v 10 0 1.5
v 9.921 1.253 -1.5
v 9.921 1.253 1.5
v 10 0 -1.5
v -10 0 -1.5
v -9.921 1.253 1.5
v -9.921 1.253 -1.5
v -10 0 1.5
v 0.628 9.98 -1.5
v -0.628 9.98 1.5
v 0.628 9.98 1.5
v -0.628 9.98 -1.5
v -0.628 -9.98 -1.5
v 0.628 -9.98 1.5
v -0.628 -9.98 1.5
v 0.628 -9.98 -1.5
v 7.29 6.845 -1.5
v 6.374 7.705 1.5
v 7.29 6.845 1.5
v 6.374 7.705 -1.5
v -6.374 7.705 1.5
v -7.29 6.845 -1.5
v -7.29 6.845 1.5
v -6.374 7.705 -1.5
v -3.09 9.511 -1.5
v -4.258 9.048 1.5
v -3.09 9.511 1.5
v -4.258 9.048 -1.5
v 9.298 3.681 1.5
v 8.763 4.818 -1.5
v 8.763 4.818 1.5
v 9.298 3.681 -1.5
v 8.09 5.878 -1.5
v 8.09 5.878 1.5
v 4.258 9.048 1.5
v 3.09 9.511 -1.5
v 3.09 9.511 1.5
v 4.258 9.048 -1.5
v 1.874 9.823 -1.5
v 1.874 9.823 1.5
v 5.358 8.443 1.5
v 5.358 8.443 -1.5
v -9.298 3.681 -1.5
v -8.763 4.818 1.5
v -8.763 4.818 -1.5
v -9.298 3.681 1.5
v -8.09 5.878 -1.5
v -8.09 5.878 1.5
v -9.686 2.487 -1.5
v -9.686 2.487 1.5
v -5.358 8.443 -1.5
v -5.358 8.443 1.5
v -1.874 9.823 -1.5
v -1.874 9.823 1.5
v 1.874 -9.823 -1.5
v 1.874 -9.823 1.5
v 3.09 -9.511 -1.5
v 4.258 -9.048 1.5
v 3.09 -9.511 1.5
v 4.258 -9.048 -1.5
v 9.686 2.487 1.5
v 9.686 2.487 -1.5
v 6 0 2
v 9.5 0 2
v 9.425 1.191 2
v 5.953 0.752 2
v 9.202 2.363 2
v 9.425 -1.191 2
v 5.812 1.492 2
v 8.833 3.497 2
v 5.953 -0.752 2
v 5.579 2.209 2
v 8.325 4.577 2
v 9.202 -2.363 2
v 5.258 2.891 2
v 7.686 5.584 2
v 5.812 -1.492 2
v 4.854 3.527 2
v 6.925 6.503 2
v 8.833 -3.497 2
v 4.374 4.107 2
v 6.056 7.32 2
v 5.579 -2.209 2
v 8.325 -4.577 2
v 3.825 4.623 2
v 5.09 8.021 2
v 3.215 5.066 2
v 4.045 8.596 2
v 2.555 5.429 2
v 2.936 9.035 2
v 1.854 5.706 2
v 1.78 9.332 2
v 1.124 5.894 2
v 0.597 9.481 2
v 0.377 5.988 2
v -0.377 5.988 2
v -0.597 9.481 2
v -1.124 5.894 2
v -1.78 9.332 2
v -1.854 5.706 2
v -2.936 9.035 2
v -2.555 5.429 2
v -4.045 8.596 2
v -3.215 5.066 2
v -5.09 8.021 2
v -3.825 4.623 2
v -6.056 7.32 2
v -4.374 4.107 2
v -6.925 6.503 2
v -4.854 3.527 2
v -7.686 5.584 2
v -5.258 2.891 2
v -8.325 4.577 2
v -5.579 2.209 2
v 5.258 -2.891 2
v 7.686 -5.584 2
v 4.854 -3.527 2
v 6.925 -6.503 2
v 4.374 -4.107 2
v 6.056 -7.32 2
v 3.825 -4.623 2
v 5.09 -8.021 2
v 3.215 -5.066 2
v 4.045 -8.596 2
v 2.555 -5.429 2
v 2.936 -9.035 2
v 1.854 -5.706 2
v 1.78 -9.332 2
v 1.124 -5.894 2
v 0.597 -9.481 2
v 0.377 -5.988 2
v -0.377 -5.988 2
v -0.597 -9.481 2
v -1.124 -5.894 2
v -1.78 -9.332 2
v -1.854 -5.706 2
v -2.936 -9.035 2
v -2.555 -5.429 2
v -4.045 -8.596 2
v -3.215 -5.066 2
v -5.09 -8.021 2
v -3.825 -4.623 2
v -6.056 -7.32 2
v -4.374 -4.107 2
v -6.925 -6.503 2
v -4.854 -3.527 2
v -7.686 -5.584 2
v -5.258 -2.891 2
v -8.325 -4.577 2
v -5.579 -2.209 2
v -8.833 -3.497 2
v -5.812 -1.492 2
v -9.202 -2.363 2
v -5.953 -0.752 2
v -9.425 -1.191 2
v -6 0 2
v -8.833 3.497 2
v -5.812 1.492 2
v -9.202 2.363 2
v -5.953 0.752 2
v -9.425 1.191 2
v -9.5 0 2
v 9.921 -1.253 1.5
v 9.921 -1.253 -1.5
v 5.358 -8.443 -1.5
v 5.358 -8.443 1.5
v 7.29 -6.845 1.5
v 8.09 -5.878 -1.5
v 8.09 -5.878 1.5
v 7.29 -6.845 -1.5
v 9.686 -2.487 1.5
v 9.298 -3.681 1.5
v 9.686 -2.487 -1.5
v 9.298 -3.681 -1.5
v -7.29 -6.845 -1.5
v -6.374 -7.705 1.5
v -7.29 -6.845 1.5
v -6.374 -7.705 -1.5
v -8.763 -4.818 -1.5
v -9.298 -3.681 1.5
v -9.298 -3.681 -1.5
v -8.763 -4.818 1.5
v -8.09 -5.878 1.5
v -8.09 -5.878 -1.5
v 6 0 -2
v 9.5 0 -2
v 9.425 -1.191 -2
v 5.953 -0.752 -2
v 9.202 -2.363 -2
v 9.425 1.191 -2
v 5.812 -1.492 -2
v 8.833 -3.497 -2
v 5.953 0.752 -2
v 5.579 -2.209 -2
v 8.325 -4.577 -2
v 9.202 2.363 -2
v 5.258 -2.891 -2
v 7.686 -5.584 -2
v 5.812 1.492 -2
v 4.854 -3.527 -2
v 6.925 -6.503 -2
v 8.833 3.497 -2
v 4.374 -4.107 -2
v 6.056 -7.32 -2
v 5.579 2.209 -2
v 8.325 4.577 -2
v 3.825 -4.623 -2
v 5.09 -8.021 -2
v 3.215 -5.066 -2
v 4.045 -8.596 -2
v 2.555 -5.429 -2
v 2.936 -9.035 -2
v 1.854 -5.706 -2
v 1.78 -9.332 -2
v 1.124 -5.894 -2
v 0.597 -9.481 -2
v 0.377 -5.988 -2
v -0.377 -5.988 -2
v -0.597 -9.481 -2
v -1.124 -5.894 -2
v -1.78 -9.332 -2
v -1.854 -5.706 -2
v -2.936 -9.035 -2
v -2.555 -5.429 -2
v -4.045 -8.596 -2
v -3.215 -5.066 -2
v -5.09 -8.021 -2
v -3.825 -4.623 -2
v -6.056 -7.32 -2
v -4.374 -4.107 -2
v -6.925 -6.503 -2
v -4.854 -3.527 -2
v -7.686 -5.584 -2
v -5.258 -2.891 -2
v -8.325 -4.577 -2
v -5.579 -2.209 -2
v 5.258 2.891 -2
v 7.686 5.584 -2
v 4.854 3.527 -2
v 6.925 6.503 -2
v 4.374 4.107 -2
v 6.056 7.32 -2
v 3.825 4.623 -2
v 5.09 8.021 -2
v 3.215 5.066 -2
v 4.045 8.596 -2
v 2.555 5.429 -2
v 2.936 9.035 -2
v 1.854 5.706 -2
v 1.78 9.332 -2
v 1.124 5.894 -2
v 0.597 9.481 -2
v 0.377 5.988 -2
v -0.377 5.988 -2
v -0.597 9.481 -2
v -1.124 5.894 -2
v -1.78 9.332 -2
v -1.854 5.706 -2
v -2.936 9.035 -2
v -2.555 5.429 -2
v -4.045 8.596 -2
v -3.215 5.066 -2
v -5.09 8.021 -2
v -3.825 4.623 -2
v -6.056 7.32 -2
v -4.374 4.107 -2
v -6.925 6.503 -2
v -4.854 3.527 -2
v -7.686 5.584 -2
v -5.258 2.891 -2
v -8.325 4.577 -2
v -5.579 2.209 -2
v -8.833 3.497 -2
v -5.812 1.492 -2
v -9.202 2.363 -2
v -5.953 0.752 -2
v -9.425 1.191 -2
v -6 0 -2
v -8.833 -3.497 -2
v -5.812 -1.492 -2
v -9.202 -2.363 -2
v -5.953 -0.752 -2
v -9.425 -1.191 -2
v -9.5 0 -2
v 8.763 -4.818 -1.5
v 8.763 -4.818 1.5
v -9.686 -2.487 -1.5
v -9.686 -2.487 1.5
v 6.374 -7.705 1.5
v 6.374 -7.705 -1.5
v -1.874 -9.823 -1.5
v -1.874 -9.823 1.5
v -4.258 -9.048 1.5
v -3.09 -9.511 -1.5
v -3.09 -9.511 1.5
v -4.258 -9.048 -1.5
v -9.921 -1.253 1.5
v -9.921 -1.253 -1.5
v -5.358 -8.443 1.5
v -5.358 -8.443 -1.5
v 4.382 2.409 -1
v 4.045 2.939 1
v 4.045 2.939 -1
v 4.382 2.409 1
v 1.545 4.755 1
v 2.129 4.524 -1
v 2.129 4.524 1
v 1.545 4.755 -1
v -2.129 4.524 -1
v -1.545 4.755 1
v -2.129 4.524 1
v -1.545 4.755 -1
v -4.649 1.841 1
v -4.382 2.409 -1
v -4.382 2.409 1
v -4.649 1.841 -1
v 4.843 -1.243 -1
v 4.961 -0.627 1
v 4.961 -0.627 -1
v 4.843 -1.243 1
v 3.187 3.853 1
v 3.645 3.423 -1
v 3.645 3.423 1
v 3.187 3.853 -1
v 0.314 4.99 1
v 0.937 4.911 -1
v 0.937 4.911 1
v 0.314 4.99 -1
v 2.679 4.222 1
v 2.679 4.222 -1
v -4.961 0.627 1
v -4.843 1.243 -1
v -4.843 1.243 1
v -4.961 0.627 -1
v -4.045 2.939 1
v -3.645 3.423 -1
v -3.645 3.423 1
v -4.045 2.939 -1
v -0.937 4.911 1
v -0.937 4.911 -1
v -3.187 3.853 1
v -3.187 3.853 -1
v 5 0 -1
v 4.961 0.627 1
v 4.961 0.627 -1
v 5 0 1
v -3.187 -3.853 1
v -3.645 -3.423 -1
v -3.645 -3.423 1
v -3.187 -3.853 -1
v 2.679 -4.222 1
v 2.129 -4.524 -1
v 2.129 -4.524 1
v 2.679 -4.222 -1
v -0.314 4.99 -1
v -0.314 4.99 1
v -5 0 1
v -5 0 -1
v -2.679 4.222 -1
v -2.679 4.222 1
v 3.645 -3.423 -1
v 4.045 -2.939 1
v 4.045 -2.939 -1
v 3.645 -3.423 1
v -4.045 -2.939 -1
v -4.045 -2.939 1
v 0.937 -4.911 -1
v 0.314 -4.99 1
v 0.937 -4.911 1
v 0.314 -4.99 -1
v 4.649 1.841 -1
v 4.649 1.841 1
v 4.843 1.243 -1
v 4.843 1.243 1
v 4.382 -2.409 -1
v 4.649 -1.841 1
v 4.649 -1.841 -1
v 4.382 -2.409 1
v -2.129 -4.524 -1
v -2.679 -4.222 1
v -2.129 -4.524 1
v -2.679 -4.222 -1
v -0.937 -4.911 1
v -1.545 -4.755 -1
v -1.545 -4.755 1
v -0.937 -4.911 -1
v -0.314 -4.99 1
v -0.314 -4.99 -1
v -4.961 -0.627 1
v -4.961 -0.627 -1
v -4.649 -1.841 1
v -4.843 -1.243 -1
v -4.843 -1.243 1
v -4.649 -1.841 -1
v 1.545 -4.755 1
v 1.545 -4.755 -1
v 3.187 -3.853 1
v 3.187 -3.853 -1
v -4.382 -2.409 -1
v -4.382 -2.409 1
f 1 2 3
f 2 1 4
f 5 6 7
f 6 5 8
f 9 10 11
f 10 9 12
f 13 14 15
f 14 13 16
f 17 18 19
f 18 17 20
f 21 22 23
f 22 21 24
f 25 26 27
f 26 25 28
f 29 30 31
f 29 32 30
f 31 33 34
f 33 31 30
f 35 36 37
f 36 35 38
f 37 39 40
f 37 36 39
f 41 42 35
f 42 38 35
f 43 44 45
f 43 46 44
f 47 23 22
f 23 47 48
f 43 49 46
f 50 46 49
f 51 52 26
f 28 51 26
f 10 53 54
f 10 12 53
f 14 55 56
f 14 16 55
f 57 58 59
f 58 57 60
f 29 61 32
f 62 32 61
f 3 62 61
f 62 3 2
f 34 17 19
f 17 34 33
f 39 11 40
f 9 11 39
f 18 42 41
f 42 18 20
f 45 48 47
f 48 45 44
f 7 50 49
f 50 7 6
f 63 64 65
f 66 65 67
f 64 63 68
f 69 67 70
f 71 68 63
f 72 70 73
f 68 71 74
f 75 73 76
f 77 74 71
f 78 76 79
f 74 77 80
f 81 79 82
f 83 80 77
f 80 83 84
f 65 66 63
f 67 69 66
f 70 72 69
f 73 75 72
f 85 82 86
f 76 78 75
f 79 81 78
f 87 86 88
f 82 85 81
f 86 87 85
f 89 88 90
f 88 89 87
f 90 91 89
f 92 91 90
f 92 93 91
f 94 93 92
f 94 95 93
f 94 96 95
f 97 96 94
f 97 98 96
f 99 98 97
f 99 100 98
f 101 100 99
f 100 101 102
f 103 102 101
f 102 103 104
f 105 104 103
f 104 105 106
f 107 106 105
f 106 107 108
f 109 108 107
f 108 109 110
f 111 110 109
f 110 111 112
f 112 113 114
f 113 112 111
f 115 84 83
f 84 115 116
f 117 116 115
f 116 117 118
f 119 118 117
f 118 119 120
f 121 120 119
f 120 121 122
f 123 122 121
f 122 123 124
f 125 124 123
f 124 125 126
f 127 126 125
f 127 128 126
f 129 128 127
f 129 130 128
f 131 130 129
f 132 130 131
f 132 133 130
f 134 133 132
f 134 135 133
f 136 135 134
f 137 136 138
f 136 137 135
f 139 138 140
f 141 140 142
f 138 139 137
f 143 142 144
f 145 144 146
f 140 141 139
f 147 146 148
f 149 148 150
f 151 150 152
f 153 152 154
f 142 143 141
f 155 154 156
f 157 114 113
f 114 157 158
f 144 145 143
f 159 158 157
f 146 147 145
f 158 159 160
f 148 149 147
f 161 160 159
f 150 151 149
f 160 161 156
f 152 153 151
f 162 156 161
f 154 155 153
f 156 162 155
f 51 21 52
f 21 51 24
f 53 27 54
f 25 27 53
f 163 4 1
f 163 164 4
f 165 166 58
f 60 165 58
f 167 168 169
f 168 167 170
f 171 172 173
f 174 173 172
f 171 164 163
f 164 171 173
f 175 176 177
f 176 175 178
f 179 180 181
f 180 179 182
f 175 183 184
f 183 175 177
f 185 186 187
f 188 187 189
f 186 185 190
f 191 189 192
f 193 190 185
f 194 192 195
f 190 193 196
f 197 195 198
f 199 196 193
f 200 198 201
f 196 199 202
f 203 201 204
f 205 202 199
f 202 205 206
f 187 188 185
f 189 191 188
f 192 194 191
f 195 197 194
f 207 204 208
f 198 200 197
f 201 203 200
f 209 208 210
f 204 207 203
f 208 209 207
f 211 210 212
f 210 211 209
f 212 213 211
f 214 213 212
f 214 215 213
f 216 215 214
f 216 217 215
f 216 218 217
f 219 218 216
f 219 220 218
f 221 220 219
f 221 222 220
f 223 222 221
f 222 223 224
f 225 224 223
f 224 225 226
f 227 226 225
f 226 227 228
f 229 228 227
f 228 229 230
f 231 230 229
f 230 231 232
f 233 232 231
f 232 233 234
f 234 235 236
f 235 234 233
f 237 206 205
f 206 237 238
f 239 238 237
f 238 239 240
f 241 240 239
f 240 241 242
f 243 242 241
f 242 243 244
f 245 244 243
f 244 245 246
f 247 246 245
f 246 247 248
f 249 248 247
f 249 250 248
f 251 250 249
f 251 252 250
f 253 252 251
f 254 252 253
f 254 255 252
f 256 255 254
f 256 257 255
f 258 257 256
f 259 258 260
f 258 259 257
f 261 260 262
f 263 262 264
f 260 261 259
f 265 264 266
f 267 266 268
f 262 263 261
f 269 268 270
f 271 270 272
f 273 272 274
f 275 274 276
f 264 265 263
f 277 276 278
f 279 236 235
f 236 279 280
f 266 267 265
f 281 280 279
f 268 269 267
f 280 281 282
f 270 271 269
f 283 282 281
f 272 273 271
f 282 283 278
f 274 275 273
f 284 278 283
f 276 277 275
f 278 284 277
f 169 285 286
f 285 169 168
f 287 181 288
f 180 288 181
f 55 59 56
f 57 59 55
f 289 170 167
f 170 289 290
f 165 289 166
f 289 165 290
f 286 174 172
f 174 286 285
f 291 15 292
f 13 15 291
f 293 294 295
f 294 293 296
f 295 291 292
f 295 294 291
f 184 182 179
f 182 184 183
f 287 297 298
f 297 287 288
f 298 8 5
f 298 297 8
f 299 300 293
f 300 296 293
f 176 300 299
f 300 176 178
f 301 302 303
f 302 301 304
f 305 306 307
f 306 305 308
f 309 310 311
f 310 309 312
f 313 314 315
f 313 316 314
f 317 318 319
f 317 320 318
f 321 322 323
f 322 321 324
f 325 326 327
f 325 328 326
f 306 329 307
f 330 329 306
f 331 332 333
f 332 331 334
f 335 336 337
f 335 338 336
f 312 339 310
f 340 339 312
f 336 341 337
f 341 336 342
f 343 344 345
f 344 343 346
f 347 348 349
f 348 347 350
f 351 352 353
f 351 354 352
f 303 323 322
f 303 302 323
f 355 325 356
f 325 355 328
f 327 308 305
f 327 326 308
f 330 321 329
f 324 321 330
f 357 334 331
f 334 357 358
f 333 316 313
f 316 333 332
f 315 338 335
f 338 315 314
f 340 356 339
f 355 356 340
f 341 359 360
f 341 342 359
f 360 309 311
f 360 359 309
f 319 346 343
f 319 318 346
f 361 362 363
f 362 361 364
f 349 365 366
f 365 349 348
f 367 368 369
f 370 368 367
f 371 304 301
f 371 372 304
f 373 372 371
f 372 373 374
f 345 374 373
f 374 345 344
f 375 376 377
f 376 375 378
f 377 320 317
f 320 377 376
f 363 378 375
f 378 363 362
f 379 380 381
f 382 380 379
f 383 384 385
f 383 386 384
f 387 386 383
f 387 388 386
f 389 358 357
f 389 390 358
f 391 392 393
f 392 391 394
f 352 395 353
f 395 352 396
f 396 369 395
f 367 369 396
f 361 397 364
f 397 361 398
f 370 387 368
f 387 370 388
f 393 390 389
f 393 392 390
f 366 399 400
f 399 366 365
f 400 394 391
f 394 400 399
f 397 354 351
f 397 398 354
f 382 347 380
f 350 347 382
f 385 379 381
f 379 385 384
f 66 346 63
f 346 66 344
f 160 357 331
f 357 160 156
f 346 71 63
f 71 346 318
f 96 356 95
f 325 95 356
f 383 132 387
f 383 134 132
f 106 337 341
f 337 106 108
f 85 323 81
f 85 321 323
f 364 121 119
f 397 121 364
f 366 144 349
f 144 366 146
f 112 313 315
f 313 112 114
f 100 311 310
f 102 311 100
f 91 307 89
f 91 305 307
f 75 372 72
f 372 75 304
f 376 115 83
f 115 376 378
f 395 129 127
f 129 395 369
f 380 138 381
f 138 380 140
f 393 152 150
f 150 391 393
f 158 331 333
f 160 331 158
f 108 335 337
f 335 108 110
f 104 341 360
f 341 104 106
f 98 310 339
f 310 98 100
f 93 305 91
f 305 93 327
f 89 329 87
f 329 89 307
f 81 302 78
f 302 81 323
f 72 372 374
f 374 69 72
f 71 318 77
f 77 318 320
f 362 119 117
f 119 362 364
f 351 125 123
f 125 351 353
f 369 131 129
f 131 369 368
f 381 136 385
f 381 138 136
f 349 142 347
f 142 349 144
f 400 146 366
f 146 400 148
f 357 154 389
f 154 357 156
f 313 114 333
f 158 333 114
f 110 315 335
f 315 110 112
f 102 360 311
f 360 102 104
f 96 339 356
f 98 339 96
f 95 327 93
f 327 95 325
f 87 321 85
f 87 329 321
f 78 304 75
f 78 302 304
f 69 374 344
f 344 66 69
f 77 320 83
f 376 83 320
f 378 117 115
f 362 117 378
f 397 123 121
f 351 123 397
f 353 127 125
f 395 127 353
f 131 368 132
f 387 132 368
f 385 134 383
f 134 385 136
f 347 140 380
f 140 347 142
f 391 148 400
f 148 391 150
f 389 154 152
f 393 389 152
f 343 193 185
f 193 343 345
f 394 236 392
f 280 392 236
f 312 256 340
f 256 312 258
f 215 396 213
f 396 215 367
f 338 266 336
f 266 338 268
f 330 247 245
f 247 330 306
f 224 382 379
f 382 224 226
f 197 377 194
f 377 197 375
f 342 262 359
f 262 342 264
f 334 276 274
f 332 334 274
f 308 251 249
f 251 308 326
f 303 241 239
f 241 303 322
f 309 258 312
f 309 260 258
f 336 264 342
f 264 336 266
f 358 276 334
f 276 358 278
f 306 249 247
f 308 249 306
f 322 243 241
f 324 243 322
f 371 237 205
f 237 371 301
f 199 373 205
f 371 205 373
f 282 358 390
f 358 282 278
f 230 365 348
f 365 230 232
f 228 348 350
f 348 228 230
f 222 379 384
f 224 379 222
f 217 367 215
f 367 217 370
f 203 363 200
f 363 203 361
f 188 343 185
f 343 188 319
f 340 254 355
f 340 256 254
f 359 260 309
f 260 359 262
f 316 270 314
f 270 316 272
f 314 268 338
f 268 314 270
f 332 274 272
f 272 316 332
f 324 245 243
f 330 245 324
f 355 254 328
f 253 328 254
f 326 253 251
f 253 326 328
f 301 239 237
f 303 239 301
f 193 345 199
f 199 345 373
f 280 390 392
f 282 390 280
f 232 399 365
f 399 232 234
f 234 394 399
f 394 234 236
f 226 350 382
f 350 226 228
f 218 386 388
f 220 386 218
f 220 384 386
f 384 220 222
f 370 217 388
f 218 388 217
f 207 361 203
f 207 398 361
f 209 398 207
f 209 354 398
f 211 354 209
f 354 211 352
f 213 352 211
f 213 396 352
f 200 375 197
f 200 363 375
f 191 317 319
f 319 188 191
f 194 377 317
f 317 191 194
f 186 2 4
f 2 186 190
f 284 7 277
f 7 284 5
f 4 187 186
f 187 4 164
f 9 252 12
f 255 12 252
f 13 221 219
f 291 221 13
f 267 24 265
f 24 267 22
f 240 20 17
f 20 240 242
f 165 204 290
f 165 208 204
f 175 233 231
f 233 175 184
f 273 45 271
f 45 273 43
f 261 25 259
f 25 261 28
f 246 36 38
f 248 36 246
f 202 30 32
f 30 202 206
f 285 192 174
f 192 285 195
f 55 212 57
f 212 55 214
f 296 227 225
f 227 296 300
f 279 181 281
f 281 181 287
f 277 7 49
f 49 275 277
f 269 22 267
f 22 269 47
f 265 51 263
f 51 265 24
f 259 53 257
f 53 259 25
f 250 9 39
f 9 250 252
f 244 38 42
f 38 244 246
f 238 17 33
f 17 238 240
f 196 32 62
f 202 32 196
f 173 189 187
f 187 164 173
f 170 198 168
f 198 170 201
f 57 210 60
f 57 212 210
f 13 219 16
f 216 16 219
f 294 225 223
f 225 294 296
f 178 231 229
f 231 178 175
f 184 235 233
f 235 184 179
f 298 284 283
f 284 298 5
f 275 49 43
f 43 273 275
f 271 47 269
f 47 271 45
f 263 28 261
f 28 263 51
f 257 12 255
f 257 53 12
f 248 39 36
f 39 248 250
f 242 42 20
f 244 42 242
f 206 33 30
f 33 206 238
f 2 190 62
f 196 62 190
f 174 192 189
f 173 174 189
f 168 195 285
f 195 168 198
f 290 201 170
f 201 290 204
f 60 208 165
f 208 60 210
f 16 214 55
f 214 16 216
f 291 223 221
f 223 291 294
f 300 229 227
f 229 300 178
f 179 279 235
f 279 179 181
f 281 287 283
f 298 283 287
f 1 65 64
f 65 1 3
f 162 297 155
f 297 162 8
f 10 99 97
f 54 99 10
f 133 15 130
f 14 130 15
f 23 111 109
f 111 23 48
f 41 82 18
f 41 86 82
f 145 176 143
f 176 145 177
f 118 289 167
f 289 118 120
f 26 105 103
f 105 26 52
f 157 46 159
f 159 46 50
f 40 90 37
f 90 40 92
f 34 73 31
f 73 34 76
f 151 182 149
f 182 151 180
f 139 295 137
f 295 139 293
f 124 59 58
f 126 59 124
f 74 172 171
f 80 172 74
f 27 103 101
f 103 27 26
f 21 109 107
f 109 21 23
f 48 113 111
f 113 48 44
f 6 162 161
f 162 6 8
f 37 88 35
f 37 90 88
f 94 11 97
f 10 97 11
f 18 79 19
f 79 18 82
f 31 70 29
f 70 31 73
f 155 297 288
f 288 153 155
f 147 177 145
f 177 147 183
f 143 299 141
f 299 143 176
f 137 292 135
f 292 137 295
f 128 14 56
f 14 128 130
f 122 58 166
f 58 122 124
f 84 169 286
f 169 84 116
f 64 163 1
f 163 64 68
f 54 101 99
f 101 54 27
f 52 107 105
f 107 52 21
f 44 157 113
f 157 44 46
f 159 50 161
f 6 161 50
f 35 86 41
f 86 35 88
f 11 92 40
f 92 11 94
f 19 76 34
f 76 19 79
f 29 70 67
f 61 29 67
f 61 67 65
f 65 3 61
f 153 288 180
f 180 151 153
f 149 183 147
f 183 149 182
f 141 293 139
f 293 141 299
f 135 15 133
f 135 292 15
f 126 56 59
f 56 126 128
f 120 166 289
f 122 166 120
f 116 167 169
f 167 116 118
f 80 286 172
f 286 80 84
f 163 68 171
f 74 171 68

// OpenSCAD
$fn = 50;

cyl_size = 8;
cyl_size_2 = 13;

intersection(){
    intersection(){
        difference() {
            difference() {
                cylinder(4, 10, 10, center=true);
                cylinder(10, 5, 5, center=true);
            }
            union() {
                cylinder(cyl_size, 0, cyl_size, center=true);
                cylinder(cyl_size, cyl_size, 0, center=true);
            }
        }
        union() {
            translate([0, 0, -5]) cylinder(cyl_size_2, 0, cyl_size_2, center=true);
            translate([0, 0, 8]) cylinder(cyl_size_2, cyl_size_2, cyl_size_2, center=true);
        }
    }
    union() {
        translate([0, 0, 5]) cylinder(cyl_size_2, cyl_size_2, 0, center=true);
        translate([0, 0, -8]) cylinder(cyl_size_2, cyl_size_2, cyl_size_2, center=true);
    }
}
